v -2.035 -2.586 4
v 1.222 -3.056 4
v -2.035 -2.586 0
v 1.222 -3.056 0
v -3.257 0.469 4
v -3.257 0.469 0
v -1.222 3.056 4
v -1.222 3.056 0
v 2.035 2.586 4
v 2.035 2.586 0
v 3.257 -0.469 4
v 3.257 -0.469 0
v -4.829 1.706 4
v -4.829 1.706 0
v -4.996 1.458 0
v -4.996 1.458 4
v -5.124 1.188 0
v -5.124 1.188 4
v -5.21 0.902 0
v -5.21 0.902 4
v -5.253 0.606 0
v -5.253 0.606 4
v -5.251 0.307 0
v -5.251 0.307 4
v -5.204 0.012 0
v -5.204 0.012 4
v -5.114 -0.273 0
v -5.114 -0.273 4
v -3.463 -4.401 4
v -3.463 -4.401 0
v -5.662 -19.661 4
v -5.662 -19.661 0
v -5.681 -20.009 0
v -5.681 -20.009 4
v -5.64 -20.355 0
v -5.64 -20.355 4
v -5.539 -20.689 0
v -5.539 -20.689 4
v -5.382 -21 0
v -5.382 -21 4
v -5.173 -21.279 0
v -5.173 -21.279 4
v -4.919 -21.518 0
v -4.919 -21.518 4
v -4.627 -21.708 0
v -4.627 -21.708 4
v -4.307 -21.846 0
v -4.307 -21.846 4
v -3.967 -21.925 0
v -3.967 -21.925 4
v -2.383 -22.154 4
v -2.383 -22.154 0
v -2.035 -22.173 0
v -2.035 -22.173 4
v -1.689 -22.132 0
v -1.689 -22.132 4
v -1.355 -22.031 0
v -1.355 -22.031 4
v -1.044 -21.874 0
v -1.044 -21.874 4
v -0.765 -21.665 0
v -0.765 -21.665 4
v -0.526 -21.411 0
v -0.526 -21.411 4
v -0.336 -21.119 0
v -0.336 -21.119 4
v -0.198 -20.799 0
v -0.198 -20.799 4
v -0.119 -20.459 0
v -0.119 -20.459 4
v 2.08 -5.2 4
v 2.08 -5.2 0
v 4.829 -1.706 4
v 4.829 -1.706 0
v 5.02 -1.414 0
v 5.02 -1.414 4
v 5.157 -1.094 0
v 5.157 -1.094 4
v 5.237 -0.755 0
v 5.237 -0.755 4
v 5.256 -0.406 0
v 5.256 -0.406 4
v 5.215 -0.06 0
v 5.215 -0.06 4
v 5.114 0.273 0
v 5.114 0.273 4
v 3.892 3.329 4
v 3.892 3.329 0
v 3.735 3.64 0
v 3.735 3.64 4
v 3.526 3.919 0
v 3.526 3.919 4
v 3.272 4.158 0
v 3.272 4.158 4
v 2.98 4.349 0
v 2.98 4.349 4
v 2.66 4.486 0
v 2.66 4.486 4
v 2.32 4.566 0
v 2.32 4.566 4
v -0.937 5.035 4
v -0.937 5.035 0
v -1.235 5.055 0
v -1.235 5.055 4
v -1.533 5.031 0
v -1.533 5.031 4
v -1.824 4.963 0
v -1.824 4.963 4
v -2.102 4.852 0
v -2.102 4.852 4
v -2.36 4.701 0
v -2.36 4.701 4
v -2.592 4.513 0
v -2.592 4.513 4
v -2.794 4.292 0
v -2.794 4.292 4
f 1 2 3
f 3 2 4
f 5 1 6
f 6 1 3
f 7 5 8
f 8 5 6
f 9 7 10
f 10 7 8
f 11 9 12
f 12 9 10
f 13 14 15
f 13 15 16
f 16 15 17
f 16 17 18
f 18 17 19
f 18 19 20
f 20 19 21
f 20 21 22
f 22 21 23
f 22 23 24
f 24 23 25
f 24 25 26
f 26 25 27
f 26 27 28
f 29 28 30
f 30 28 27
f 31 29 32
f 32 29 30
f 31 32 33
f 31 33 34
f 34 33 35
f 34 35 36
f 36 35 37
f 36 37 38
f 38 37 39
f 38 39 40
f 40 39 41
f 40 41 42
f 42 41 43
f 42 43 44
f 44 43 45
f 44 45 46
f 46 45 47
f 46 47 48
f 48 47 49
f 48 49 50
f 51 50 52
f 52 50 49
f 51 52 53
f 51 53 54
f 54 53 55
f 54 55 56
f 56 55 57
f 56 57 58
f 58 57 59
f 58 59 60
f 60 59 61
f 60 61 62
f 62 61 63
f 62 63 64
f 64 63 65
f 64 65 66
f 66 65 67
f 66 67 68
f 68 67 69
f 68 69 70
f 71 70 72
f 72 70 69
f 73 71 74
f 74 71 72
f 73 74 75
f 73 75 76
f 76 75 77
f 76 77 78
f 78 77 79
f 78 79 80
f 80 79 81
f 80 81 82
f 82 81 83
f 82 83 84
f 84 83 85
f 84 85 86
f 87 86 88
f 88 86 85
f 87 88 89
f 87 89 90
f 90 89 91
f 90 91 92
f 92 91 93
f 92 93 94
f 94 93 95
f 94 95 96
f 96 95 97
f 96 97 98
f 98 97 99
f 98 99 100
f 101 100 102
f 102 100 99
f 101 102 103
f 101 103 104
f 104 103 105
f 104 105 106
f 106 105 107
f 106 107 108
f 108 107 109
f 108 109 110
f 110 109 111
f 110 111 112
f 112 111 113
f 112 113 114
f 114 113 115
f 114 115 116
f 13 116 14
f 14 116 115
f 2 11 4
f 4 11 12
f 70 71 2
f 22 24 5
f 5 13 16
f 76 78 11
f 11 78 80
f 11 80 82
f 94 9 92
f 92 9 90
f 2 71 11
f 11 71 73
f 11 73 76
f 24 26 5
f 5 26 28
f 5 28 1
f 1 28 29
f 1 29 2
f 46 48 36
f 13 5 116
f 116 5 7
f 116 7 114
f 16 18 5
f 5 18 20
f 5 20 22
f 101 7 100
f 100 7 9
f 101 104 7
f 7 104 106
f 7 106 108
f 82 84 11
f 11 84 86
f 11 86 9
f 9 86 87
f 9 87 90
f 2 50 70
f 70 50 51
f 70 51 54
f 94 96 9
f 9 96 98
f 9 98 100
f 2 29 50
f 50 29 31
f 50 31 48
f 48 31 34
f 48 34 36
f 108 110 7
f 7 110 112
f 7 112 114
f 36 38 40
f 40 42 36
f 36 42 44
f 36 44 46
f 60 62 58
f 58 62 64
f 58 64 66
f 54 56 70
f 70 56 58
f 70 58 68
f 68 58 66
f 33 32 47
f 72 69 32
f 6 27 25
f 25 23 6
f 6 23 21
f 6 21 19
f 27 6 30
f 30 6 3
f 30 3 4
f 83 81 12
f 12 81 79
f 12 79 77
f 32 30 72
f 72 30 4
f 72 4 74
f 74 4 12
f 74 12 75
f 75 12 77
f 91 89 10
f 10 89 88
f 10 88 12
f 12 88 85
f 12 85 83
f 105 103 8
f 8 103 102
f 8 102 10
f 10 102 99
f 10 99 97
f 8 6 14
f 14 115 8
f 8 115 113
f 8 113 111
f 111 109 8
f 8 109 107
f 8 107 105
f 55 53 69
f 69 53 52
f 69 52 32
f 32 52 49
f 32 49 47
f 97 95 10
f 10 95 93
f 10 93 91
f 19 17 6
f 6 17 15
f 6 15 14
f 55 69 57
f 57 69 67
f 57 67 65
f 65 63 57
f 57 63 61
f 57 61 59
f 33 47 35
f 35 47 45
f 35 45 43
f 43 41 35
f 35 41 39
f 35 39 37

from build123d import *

# Parameters (mm, degrees)
BOSS_EXTRUDE1_DEPTH = 4


with BuildPart() as part:
    # Sketch1 → Boss-Extrude1 (new body)
    # profile 1 of 2: a face of its own
    with BuildSketch(Plane.XY):
        with BuildLine():
            ThreePointArc((-5.114216096, -0.273484418), (-5.236822192, 0.754506105), (-4.829006926, 1.70607506))
            Line((-4.829006926, 1.70607506), (-2.793952502, 4.29229885))
            ThreePointArc((-2.793952502, 4.29229885), (-1.964989642, 4.912474106), (-0.93699912, 5.035080203))
            Line((-0.93699912, 5.035080203), (2.320263594, 4.565783268))
            ThreePointArc((2.320263594, 4.565783268), (3.27183255, 4.157968002), (3.892007806, 3.329005142))
            Line((3.892007806, 3.329005142), (5.114216096, 0.273484418))
            ThreePointArc((5.114216096, 0.273484418), (5.236822192, -0.754506105), (4.829006926, -1.70607506))
            Line((4.829006926, -1.70607506), (2.079898318, -5.199745794))
            Line((2.079898318, -5.199745794), (-3.463162792, -4.401117677))
            Line((-3.463162792, -4.401117677), (-5.114216096, -0.273484418))
        make_face()
        Polygon((-2.035054424, -2.58622379), (1.22220829, -3.055520724), (3.257262714, -0.469296935), (2.035054424, 2.58622379), (-1.22220829, 3.055520724), (-3.257262714, 0.469296935), align=None, mode=Mode.SUBTRACT)
    # profile 2 of 2: a face of its own
    with BuildSketch(Plane.XY):
        with BuildLine():
            ThreePointArc((-3.967355061, -21.92537395), (-5.283579161, -21.143901064), (-5.66170537, -19.660605301))
            Line((-5.66170537, -19.660605301), (-3.463162792, -4.401117677))
            Line((-3.463162792, -4.401117677), (2.079898318, -5.199745794))
            Line((2.079898318, -5.199745794), (-0.11864426, -20.459233418))
            ThreePointArc((-0.11864426, -20.459233418), (-0.900117146, -21.775457517), (-2.383412909, -22.153583726))
            Line((-2.383412909, -22.153583726), (-3.967355061, -21.92537395))
        make_face()
    extrude(amount=BOSS_EXTRUDE1_DEPTH)


solid = part.part
